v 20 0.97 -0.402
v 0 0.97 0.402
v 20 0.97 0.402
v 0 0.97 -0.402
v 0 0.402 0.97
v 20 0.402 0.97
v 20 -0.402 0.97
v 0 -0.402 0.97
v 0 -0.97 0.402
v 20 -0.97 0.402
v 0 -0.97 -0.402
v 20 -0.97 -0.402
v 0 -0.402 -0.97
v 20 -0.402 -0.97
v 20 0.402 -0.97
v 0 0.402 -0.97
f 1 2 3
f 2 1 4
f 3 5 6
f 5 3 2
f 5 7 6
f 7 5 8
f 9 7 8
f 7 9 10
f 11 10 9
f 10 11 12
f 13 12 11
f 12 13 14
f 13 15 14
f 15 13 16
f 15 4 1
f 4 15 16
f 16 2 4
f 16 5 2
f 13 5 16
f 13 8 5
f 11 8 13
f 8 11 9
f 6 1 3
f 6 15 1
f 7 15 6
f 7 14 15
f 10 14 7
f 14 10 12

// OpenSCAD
rotate([0,90,0])
rotate([0,0,67.5])
cylinder(h=20, r=1.05, $fn=8);
